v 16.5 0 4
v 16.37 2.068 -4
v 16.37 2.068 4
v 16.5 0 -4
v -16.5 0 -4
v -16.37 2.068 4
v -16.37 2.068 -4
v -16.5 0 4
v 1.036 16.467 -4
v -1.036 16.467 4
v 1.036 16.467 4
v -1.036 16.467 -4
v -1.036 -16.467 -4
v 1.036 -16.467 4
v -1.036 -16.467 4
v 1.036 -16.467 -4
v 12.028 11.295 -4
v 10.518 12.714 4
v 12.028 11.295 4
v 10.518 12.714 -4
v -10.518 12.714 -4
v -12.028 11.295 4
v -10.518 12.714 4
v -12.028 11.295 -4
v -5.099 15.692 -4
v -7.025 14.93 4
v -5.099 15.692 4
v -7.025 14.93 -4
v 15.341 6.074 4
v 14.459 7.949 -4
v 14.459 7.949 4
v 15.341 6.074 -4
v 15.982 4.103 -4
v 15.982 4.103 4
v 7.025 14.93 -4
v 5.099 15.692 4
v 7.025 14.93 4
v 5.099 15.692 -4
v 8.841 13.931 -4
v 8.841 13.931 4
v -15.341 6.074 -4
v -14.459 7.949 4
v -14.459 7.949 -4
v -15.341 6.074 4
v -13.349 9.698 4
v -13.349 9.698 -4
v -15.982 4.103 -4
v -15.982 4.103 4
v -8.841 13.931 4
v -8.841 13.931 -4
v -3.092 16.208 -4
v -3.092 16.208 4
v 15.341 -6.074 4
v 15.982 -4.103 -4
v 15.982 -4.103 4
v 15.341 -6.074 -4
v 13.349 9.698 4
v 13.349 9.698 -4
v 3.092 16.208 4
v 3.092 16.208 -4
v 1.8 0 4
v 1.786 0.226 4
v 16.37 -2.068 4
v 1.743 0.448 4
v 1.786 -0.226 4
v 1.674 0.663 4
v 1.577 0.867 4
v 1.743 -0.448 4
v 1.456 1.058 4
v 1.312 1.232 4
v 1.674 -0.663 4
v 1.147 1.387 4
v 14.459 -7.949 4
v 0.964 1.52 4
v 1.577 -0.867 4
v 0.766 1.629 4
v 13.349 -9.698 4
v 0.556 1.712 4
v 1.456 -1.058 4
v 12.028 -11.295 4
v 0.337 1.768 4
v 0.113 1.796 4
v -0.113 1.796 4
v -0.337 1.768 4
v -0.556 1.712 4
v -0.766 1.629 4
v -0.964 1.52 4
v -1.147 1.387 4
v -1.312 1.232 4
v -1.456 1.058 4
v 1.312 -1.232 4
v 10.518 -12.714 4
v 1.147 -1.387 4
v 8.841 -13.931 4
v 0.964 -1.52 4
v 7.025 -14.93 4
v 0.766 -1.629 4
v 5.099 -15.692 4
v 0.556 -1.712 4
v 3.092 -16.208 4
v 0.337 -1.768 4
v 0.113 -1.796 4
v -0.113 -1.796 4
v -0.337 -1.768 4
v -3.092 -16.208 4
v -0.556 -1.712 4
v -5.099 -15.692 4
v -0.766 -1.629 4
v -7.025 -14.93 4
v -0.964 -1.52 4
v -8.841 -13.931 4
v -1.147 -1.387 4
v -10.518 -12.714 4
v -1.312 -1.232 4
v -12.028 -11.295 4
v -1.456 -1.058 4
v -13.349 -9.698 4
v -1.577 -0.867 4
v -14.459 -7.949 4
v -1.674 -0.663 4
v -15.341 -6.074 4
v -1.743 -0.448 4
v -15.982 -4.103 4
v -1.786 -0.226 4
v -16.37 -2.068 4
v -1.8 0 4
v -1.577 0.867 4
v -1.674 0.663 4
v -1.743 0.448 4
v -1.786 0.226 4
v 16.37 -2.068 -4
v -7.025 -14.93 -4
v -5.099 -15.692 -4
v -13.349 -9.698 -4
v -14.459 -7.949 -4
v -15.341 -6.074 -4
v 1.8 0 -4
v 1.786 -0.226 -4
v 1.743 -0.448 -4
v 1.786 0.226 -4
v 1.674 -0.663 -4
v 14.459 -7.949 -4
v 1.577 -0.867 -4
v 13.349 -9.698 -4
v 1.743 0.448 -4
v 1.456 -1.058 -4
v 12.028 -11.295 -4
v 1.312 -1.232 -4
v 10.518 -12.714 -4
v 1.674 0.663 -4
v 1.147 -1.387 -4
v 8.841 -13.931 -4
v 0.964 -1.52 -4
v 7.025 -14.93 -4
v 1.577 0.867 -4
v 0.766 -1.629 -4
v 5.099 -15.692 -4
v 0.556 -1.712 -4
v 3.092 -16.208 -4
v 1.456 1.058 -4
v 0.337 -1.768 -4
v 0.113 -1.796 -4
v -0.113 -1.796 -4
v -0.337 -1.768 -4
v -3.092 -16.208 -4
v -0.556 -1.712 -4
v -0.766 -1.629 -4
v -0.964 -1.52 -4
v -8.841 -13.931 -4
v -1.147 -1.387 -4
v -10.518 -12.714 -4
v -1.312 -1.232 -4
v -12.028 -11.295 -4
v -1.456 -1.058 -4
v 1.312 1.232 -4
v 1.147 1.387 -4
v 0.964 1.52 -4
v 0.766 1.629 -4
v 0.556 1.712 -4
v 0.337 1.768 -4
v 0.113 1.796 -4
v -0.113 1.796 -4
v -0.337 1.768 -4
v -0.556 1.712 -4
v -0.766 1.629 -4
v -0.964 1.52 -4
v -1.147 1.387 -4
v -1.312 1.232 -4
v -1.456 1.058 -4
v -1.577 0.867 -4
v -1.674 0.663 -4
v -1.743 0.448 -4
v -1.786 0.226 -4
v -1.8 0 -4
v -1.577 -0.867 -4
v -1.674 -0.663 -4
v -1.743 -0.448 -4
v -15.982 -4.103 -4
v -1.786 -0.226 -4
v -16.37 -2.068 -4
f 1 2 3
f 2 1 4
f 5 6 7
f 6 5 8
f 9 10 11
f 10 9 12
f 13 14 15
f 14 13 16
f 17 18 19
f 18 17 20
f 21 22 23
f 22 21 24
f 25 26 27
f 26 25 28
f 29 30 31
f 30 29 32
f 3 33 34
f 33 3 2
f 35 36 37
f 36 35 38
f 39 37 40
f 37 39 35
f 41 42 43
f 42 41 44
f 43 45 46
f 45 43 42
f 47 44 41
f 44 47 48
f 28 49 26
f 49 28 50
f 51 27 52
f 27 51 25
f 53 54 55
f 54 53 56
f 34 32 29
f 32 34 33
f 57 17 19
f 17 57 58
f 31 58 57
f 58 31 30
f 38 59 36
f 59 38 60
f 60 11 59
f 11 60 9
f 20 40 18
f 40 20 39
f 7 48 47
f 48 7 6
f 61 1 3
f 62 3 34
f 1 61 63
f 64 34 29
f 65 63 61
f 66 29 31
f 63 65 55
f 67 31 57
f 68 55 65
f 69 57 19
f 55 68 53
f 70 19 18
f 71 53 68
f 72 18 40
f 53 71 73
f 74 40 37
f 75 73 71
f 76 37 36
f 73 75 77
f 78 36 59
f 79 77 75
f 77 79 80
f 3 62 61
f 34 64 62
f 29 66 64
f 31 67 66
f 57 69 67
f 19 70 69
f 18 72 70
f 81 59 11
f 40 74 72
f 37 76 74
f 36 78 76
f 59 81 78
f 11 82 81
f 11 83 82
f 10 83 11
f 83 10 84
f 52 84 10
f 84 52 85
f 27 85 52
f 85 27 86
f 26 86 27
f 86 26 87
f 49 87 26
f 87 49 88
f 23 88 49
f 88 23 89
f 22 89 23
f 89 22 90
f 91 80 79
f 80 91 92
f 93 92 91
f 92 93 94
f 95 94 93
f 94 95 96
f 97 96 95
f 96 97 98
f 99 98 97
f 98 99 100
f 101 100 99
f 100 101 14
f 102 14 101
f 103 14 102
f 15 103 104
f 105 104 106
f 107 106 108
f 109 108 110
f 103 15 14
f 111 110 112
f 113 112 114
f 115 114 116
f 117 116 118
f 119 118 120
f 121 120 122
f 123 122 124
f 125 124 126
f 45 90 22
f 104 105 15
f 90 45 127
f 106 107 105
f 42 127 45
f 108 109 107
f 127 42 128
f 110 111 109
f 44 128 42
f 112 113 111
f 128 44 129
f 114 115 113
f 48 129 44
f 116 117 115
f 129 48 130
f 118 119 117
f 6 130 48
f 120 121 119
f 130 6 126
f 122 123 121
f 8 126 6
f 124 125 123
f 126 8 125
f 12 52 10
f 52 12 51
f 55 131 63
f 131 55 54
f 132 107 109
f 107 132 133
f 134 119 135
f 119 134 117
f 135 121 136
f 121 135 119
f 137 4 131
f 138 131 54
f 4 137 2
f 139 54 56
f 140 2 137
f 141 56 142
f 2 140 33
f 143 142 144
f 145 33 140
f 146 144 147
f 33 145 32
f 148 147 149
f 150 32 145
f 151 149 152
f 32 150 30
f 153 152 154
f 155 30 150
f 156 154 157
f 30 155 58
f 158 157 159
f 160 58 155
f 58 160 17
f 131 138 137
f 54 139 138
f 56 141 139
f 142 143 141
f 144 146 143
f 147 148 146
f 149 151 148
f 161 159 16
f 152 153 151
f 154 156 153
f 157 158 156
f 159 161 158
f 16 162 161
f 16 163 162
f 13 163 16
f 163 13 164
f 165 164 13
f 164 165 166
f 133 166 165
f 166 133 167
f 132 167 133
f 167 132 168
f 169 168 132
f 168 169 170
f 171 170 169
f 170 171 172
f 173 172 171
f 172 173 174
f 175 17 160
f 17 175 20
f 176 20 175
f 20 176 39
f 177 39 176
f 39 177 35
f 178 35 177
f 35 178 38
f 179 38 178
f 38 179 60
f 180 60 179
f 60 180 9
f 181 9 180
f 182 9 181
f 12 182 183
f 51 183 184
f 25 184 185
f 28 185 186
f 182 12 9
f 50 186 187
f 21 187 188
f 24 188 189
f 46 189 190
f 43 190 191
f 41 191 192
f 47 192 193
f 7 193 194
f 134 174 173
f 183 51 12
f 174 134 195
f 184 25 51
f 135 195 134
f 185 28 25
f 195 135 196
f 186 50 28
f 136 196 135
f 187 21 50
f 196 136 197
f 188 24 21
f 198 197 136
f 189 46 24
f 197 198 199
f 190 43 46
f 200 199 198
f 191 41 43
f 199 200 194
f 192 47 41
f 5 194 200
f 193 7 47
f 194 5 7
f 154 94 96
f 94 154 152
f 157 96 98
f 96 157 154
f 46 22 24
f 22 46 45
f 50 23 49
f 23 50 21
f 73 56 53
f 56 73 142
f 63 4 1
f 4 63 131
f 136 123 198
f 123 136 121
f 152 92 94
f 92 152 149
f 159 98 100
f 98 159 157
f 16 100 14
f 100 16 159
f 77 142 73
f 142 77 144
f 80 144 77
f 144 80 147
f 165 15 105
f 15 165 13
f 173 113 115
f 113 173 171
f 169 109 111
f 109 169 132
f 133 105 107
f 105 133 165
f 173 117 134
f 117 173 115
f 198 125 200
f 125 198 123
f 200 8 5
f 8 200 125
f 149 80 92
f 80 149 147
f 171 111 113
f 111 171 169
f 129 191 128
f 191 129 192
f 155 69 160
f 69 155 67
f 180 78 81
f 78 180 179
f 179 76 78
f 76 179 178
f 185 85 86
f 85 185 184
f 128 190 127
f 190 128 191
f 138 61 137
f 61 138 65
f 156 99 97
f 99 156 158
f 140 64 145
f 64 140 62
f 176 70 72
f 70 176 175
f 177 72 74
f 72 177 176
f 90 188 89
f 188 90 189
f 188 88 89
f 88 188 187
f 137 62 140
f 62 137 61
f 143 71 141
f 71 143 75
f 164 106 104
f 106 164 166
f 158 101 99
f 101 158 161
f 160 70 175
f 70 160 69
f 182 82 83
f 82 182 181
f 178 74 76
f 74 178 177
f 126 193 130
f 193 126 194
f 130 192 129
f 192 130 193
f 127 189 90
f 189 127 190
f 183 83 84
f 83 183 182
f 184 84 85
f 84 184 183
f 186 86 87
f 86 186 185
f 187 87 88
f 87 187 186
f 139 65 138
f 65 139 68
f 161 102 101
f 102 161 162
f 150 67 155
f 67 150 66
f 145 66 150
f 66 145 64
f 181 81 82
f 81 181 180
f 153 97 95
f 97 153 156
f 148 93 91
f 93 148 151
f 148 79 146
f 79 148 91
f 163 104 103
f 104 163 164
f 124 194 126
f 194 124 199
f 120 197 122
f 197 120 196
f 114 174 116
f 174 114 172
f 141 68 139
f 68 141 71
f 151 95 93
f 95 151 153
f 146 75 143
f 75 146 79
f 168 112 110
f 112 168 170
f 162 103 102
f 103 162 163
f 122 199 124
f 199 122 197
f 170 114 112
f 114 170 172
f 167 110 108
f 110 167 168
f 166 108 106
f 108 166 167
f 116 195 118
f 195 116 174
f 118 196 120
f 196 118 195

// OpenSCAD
$fn = 50;


difference() {
	union() {
		translate(v = [0, 0, -4.0000000000]) {
			cylinder(h = 8, r = 16.5000000000);
		}
	}
	union() {
		translate(v = [0, 0, -100.0000000000]) {
			cylinder(h = 200, r = 1.8000000000);
		}
	}
}
